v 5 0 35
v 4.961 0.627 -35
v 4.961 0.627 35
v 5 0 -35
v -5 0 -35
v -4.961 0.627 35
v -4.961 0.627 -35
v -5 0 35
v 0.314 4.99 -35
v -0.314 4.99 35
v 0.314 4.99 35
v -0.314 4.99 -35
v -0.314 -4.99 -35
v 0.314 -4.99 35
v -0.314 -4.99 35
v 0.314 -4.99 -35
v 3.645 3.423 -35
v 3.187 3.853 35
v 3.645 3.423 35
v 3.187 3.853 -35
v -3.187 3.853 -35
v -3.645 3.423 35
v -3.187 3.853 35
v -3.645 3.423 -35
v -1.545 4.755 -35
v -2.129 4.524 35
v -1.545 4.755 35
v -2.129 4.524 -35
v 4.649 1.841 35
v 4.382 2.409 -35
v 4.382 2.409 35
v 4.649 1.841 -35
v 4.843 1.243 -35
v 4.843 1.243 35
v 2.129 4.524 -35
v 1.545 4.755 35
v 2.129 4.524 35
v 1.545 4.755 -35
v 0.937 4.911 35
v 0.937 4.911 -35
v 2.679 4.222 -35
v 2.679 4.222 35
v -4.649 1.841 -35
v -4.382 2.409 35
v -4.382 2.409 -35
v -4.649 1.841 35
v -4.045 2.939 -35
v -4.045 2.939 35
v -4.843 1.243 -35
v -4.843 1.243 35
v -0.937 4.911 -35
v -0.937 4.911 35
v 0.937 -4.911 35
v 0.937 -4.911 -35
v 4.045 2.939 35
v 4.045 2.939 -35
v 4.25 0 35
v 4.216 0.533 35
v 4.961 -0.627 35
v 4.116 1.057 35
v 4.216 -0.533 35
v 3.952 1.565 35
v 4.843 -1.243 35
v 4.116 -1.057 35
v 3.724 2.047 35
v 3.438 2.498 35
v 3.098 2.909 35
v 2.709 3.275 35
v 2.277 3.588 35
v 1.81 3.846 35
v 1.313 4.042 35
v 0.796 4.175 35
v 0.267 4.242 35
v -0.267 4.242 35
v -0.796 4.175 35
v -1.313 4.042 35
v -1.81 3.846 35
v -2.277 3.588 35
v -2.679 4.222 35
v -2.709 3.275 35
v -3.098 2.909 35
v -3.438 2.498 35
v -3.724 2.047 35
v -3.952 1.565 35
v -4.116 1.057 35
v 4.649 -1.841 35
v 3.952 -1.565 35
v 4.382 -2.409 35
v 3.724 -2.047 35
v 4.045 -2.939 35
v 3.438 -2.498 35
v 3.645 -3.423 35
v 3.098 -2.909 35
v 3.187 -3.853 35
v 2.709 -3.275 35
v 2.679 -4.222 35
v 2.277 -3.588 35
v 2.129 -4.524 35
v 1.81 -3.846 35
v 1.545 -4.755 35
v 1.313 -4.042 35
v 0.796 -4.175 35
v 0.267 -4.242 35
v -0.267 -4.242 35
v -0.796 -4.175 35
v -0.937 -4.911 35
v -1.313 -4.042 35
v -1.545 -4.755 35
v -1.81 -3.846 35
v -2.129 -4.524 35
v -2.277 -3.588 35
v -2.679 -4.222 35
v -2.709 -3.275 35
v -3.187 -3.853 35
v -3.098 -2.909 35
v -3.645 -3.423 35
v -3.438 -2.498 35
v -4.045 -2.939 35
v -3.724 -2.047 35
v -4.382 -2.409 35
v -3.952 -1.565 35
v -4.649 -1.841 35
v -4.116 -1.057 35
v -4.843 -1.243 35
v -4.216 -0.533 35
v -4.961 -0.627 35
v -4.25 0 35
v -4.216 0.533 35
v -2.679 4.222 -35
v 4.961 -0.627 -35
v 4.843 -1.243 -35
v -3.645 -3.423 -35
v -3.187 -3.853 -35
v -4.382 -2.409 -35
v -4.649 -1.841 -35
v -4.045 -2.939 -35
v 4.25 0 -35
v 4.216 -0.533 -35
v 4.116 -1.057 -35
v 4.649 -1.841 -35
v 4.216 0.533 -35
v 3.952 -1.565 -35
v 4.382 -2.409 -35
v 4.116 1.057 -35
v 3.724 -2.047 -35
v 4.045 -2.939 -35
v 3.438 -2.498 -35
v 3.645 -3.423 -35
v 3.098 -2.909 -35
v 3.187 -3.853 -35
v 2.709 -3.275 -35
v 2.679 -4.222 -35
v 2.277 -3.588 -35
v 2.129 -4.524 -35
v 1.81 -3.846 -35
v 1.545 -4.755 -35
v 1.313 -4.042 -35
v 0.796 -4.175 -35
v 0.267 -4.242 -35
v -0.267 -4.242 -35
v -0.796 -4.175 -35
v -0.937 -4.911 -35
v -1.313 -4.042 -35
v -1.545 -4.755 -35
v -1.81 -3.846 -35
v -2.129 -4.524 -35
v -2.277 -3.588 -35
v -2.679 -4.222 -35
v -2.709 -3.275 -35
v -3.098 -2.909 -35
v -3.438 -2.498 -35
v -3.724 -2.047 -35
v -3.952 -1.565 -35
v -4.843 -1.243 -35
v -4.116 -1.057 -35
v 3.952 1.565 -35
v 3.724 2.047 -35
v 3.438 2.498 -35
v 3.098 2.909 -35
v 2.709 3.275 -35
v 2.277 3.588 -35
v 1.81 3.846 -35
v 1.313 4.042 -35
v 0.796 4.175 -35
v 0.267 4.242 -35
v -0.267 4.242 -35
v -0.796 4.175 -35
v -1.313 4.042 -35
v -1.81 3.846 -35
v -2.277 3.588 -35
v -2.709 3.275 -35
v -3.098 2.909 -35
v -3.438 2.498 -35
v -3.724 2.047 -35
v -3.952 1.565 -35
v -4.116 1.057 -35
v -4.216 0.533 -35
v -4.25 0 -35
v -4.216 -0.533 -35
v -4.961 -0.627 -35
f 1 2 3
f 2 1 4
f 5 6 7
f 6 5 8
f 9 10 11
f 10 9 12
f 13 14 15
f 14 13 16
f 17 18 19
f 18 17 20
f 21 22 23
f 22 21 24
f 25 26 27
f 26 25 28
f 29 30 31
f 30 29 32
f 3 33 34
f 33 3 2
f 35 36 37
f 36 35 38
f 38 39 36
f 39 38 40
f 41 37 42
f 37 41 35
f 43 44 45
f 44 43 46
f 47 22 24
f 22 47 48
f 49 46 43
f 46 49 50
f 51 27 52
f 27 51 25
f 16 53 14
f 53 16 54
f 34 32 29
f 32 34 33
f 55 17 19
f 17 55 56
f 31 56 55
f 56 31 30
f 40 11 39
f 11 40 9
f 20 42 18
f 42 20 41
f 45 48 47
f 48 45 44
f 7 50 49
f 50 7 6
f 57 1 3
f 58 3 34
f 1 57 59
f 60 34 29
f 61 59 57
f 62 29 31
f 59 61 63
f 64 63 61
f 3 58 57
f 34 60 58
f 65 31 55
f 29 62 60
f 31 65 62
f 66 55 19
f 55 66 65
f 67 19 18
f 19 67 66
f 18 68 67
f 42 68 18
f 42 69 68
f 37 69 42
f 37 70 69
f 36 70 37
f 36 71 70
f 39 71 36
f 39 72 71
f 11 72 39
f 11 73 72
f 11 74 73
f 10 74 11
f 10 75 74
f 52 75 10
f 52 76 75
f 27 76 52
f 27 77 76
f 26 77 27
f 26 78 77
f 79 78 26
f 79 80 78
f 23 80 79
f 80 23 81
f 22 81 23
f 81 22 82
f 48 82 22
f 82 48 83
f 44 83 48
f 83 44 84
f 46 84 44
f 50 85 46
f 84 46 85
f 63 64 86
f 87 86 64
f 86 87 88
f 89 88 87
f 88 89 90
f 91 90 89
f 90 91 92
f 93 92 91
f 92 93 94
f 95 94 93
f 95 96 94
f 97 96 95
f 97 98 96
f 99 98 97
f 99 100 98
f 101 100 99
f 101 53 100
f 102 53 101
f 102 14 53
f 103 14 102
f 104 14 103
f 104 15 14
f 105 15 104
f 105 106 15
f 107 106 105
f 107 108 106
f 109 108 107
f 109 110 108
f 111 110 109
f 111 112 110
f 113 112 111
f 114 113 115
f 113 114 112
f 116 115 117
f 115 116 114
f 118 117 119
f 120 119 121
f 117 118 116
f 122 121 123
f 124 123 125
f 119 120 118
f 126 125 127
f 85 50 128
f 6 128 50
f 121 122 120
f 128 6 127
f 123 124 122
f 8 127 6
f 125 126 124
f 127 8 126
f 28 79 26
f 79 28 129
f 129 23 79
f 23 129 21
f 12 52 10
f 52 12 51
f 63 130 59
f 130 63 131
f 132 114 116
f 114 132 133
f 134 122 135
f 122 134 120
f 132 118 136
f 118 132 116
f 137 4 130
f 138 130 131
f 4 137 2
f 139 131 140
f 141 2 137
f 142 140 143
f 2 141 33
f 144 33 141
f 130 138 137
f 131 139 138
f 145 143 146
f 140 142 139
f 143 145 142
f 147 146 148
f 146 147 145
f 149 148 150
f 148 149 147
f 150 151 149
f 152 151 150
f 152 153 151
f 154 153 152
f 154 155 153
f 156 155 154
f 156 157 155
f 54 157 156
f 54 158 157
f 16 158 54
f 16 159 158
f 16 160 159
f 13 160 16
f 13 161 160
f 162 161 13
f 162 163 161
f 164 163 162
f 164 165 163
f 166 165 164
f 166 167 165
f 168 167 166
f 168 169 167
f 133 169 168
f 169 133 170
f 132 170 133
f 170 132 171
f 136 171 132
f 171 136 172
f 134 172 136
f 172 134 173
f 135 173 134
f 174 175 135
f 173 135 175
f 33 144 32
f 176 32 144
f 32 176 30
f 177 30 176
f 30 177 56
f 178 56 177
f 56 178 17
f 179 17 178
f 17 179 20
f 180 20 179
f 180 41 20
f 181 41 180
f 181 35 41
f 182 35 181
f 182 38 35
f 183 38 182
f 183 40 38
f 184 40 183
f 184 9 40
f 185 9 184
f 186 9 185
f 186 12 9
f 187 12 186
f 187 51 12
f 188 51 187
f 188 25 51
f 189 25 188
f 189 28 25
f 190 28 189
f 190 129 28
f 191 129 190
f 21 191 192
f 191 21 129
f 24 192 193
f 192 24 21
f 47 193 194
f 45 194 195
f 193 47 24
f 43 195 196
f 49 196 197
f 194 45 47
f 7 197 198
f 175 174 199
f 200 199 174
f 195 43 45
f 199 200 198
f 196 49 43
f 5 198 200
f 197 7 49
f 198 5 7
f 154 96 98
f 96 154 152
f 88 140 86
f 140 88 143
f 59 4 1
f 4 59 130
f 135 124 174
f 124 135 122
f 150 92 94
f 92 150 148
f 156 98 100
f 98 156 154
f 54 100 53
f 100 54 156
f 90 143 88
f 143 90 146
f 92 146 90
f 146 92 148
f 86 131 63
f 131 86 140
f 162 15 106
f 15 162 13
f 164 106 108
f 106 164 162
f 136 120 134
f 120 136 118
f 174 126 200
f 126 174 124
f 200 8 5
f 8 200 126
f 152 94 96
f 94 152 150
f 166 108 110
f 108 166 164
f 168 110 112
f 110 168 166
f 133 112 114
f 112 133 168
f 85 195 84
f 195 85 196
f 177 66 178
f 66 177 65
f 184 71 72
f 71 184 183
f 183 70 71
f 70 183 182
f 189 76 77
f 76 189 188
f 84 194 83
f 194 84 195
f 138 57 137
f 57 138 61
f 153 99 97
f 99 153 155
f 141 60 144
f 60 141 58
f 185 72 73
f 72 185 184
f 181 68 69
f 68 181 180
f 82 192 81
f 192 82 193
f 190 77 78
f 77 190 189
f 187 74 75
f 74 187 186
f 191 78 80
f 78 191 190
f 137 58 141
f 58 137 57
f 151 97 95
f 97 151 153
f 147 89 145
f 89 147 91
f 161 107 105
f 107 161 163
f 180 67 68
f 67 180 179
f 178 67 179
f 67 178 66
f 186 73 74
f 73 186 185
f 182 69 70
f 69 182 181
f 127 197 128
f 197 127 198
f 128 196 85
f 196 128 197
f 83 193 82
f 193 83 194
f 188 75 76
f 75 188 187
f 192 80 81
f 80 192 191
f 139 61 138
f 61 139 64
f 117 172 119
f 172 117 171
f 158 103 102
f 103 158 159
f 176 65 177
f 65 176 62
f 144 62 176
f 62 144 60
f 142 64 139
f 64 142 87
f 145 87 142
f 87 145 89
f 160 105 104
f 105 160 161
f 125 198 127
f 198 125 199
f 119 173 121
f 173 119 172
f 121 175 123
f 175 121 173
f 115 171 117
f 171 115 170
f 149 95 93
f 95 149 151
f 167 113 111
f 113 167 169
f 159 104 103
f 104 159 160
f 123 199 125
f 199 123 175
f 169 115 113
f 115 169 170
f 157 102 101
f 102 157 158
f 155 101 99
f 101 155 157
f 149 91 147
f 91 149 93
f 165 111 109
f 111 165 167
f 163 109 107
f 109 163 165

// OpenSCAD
$fn = 50;


difference() {
	union() {
		translate(v = [0, 0, -35.0000000000]) {
			cylinder(h = 70, r = 5.0000000000);
		}
	}
	union() {
		translate(v = [0, 0, -100.0000000000]) {
			cylinder(h = 200, r = 4.2500000000);
		}
	}
}
